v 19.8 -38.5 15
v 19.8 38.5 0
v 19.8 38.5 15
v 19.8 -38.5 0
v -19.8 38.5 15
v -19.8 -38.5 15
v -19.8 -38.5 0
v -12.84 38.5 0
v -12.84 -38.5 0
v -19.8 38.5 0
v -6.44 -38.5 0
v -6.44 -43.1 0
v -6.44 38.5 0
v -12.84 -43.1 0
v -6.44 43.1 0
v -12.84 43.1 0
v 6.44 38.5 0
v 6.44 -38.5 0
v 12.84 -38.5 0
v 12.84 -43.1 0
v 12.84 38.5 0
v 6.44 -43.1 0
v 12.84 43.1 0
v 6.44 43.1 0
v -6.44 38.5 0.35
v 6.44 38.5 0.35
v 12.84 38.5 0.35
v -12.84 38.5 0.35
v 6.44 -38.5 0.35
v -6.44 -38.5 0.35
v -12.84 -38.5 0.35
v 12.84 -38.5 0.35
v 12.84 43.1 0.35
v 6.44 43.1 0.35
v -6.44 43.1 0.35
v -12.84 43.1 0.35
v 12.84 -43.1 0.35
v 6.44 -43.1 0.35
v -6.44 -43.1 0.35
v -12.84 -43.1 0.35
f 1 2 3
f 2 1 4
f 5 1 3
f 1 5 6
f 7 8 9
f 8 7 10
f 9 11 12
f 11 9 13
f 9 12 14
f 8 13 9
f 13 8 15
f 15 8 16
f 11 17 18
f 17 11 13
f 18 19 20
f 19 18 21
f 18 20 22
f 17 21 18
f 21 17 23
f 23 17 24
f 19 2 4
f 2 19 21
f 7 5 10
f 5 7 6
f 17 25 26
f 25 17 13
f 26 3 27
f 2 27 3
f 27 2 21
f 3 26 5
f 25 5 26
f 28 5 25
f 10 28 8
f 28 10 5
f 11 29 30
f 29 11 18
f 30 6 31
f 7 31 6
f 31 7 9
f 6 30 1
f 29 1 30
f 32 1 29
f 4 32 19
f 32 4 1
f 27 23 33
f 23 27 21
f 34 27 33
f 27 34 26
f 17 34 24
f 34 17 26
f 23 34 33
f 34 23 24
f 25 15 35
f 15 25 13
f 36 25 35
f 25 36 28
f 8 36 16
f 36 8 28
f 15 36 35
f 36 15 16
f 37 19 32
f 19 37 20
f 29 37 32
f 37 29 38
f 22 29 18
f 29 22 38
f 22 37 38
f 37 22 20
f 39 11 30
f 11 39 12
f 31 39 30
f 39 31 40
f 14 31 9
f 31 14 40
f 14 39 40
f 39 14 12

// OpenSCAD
body_size_x=39.6;
body_size_y=77;
body_size_z=15;

terminal_size_x=6.4;
terminal_size_y=4.6;
terminal_size_z=0.35;
terminal_pos_x=body_size_x/2-10.16; // from centre

module terminal(x,y) {
    translate([x,y, terminal_size_z/2]) cube([terminal_size_x, terminal_size_y, terminal_size_z], center=true);
}

union() {
    translate([0,0,body_size_z/2]) cube([body_size_x, body_size_y, body_size_z], center=true);
    terminal(+terminal_pos_x, +(body_size_y/2+terminal_size_y/2));
    terminal(-terminal_pos_x, +(body_size_y/2+terminal_size_y/2));
    terminal(+terminal_pos_x, -(body_size_y/2+terminal_size_y/2));
    terminal(-terminal_pos_x, -(body_size_y/2+terminal_size_y/2));
}
